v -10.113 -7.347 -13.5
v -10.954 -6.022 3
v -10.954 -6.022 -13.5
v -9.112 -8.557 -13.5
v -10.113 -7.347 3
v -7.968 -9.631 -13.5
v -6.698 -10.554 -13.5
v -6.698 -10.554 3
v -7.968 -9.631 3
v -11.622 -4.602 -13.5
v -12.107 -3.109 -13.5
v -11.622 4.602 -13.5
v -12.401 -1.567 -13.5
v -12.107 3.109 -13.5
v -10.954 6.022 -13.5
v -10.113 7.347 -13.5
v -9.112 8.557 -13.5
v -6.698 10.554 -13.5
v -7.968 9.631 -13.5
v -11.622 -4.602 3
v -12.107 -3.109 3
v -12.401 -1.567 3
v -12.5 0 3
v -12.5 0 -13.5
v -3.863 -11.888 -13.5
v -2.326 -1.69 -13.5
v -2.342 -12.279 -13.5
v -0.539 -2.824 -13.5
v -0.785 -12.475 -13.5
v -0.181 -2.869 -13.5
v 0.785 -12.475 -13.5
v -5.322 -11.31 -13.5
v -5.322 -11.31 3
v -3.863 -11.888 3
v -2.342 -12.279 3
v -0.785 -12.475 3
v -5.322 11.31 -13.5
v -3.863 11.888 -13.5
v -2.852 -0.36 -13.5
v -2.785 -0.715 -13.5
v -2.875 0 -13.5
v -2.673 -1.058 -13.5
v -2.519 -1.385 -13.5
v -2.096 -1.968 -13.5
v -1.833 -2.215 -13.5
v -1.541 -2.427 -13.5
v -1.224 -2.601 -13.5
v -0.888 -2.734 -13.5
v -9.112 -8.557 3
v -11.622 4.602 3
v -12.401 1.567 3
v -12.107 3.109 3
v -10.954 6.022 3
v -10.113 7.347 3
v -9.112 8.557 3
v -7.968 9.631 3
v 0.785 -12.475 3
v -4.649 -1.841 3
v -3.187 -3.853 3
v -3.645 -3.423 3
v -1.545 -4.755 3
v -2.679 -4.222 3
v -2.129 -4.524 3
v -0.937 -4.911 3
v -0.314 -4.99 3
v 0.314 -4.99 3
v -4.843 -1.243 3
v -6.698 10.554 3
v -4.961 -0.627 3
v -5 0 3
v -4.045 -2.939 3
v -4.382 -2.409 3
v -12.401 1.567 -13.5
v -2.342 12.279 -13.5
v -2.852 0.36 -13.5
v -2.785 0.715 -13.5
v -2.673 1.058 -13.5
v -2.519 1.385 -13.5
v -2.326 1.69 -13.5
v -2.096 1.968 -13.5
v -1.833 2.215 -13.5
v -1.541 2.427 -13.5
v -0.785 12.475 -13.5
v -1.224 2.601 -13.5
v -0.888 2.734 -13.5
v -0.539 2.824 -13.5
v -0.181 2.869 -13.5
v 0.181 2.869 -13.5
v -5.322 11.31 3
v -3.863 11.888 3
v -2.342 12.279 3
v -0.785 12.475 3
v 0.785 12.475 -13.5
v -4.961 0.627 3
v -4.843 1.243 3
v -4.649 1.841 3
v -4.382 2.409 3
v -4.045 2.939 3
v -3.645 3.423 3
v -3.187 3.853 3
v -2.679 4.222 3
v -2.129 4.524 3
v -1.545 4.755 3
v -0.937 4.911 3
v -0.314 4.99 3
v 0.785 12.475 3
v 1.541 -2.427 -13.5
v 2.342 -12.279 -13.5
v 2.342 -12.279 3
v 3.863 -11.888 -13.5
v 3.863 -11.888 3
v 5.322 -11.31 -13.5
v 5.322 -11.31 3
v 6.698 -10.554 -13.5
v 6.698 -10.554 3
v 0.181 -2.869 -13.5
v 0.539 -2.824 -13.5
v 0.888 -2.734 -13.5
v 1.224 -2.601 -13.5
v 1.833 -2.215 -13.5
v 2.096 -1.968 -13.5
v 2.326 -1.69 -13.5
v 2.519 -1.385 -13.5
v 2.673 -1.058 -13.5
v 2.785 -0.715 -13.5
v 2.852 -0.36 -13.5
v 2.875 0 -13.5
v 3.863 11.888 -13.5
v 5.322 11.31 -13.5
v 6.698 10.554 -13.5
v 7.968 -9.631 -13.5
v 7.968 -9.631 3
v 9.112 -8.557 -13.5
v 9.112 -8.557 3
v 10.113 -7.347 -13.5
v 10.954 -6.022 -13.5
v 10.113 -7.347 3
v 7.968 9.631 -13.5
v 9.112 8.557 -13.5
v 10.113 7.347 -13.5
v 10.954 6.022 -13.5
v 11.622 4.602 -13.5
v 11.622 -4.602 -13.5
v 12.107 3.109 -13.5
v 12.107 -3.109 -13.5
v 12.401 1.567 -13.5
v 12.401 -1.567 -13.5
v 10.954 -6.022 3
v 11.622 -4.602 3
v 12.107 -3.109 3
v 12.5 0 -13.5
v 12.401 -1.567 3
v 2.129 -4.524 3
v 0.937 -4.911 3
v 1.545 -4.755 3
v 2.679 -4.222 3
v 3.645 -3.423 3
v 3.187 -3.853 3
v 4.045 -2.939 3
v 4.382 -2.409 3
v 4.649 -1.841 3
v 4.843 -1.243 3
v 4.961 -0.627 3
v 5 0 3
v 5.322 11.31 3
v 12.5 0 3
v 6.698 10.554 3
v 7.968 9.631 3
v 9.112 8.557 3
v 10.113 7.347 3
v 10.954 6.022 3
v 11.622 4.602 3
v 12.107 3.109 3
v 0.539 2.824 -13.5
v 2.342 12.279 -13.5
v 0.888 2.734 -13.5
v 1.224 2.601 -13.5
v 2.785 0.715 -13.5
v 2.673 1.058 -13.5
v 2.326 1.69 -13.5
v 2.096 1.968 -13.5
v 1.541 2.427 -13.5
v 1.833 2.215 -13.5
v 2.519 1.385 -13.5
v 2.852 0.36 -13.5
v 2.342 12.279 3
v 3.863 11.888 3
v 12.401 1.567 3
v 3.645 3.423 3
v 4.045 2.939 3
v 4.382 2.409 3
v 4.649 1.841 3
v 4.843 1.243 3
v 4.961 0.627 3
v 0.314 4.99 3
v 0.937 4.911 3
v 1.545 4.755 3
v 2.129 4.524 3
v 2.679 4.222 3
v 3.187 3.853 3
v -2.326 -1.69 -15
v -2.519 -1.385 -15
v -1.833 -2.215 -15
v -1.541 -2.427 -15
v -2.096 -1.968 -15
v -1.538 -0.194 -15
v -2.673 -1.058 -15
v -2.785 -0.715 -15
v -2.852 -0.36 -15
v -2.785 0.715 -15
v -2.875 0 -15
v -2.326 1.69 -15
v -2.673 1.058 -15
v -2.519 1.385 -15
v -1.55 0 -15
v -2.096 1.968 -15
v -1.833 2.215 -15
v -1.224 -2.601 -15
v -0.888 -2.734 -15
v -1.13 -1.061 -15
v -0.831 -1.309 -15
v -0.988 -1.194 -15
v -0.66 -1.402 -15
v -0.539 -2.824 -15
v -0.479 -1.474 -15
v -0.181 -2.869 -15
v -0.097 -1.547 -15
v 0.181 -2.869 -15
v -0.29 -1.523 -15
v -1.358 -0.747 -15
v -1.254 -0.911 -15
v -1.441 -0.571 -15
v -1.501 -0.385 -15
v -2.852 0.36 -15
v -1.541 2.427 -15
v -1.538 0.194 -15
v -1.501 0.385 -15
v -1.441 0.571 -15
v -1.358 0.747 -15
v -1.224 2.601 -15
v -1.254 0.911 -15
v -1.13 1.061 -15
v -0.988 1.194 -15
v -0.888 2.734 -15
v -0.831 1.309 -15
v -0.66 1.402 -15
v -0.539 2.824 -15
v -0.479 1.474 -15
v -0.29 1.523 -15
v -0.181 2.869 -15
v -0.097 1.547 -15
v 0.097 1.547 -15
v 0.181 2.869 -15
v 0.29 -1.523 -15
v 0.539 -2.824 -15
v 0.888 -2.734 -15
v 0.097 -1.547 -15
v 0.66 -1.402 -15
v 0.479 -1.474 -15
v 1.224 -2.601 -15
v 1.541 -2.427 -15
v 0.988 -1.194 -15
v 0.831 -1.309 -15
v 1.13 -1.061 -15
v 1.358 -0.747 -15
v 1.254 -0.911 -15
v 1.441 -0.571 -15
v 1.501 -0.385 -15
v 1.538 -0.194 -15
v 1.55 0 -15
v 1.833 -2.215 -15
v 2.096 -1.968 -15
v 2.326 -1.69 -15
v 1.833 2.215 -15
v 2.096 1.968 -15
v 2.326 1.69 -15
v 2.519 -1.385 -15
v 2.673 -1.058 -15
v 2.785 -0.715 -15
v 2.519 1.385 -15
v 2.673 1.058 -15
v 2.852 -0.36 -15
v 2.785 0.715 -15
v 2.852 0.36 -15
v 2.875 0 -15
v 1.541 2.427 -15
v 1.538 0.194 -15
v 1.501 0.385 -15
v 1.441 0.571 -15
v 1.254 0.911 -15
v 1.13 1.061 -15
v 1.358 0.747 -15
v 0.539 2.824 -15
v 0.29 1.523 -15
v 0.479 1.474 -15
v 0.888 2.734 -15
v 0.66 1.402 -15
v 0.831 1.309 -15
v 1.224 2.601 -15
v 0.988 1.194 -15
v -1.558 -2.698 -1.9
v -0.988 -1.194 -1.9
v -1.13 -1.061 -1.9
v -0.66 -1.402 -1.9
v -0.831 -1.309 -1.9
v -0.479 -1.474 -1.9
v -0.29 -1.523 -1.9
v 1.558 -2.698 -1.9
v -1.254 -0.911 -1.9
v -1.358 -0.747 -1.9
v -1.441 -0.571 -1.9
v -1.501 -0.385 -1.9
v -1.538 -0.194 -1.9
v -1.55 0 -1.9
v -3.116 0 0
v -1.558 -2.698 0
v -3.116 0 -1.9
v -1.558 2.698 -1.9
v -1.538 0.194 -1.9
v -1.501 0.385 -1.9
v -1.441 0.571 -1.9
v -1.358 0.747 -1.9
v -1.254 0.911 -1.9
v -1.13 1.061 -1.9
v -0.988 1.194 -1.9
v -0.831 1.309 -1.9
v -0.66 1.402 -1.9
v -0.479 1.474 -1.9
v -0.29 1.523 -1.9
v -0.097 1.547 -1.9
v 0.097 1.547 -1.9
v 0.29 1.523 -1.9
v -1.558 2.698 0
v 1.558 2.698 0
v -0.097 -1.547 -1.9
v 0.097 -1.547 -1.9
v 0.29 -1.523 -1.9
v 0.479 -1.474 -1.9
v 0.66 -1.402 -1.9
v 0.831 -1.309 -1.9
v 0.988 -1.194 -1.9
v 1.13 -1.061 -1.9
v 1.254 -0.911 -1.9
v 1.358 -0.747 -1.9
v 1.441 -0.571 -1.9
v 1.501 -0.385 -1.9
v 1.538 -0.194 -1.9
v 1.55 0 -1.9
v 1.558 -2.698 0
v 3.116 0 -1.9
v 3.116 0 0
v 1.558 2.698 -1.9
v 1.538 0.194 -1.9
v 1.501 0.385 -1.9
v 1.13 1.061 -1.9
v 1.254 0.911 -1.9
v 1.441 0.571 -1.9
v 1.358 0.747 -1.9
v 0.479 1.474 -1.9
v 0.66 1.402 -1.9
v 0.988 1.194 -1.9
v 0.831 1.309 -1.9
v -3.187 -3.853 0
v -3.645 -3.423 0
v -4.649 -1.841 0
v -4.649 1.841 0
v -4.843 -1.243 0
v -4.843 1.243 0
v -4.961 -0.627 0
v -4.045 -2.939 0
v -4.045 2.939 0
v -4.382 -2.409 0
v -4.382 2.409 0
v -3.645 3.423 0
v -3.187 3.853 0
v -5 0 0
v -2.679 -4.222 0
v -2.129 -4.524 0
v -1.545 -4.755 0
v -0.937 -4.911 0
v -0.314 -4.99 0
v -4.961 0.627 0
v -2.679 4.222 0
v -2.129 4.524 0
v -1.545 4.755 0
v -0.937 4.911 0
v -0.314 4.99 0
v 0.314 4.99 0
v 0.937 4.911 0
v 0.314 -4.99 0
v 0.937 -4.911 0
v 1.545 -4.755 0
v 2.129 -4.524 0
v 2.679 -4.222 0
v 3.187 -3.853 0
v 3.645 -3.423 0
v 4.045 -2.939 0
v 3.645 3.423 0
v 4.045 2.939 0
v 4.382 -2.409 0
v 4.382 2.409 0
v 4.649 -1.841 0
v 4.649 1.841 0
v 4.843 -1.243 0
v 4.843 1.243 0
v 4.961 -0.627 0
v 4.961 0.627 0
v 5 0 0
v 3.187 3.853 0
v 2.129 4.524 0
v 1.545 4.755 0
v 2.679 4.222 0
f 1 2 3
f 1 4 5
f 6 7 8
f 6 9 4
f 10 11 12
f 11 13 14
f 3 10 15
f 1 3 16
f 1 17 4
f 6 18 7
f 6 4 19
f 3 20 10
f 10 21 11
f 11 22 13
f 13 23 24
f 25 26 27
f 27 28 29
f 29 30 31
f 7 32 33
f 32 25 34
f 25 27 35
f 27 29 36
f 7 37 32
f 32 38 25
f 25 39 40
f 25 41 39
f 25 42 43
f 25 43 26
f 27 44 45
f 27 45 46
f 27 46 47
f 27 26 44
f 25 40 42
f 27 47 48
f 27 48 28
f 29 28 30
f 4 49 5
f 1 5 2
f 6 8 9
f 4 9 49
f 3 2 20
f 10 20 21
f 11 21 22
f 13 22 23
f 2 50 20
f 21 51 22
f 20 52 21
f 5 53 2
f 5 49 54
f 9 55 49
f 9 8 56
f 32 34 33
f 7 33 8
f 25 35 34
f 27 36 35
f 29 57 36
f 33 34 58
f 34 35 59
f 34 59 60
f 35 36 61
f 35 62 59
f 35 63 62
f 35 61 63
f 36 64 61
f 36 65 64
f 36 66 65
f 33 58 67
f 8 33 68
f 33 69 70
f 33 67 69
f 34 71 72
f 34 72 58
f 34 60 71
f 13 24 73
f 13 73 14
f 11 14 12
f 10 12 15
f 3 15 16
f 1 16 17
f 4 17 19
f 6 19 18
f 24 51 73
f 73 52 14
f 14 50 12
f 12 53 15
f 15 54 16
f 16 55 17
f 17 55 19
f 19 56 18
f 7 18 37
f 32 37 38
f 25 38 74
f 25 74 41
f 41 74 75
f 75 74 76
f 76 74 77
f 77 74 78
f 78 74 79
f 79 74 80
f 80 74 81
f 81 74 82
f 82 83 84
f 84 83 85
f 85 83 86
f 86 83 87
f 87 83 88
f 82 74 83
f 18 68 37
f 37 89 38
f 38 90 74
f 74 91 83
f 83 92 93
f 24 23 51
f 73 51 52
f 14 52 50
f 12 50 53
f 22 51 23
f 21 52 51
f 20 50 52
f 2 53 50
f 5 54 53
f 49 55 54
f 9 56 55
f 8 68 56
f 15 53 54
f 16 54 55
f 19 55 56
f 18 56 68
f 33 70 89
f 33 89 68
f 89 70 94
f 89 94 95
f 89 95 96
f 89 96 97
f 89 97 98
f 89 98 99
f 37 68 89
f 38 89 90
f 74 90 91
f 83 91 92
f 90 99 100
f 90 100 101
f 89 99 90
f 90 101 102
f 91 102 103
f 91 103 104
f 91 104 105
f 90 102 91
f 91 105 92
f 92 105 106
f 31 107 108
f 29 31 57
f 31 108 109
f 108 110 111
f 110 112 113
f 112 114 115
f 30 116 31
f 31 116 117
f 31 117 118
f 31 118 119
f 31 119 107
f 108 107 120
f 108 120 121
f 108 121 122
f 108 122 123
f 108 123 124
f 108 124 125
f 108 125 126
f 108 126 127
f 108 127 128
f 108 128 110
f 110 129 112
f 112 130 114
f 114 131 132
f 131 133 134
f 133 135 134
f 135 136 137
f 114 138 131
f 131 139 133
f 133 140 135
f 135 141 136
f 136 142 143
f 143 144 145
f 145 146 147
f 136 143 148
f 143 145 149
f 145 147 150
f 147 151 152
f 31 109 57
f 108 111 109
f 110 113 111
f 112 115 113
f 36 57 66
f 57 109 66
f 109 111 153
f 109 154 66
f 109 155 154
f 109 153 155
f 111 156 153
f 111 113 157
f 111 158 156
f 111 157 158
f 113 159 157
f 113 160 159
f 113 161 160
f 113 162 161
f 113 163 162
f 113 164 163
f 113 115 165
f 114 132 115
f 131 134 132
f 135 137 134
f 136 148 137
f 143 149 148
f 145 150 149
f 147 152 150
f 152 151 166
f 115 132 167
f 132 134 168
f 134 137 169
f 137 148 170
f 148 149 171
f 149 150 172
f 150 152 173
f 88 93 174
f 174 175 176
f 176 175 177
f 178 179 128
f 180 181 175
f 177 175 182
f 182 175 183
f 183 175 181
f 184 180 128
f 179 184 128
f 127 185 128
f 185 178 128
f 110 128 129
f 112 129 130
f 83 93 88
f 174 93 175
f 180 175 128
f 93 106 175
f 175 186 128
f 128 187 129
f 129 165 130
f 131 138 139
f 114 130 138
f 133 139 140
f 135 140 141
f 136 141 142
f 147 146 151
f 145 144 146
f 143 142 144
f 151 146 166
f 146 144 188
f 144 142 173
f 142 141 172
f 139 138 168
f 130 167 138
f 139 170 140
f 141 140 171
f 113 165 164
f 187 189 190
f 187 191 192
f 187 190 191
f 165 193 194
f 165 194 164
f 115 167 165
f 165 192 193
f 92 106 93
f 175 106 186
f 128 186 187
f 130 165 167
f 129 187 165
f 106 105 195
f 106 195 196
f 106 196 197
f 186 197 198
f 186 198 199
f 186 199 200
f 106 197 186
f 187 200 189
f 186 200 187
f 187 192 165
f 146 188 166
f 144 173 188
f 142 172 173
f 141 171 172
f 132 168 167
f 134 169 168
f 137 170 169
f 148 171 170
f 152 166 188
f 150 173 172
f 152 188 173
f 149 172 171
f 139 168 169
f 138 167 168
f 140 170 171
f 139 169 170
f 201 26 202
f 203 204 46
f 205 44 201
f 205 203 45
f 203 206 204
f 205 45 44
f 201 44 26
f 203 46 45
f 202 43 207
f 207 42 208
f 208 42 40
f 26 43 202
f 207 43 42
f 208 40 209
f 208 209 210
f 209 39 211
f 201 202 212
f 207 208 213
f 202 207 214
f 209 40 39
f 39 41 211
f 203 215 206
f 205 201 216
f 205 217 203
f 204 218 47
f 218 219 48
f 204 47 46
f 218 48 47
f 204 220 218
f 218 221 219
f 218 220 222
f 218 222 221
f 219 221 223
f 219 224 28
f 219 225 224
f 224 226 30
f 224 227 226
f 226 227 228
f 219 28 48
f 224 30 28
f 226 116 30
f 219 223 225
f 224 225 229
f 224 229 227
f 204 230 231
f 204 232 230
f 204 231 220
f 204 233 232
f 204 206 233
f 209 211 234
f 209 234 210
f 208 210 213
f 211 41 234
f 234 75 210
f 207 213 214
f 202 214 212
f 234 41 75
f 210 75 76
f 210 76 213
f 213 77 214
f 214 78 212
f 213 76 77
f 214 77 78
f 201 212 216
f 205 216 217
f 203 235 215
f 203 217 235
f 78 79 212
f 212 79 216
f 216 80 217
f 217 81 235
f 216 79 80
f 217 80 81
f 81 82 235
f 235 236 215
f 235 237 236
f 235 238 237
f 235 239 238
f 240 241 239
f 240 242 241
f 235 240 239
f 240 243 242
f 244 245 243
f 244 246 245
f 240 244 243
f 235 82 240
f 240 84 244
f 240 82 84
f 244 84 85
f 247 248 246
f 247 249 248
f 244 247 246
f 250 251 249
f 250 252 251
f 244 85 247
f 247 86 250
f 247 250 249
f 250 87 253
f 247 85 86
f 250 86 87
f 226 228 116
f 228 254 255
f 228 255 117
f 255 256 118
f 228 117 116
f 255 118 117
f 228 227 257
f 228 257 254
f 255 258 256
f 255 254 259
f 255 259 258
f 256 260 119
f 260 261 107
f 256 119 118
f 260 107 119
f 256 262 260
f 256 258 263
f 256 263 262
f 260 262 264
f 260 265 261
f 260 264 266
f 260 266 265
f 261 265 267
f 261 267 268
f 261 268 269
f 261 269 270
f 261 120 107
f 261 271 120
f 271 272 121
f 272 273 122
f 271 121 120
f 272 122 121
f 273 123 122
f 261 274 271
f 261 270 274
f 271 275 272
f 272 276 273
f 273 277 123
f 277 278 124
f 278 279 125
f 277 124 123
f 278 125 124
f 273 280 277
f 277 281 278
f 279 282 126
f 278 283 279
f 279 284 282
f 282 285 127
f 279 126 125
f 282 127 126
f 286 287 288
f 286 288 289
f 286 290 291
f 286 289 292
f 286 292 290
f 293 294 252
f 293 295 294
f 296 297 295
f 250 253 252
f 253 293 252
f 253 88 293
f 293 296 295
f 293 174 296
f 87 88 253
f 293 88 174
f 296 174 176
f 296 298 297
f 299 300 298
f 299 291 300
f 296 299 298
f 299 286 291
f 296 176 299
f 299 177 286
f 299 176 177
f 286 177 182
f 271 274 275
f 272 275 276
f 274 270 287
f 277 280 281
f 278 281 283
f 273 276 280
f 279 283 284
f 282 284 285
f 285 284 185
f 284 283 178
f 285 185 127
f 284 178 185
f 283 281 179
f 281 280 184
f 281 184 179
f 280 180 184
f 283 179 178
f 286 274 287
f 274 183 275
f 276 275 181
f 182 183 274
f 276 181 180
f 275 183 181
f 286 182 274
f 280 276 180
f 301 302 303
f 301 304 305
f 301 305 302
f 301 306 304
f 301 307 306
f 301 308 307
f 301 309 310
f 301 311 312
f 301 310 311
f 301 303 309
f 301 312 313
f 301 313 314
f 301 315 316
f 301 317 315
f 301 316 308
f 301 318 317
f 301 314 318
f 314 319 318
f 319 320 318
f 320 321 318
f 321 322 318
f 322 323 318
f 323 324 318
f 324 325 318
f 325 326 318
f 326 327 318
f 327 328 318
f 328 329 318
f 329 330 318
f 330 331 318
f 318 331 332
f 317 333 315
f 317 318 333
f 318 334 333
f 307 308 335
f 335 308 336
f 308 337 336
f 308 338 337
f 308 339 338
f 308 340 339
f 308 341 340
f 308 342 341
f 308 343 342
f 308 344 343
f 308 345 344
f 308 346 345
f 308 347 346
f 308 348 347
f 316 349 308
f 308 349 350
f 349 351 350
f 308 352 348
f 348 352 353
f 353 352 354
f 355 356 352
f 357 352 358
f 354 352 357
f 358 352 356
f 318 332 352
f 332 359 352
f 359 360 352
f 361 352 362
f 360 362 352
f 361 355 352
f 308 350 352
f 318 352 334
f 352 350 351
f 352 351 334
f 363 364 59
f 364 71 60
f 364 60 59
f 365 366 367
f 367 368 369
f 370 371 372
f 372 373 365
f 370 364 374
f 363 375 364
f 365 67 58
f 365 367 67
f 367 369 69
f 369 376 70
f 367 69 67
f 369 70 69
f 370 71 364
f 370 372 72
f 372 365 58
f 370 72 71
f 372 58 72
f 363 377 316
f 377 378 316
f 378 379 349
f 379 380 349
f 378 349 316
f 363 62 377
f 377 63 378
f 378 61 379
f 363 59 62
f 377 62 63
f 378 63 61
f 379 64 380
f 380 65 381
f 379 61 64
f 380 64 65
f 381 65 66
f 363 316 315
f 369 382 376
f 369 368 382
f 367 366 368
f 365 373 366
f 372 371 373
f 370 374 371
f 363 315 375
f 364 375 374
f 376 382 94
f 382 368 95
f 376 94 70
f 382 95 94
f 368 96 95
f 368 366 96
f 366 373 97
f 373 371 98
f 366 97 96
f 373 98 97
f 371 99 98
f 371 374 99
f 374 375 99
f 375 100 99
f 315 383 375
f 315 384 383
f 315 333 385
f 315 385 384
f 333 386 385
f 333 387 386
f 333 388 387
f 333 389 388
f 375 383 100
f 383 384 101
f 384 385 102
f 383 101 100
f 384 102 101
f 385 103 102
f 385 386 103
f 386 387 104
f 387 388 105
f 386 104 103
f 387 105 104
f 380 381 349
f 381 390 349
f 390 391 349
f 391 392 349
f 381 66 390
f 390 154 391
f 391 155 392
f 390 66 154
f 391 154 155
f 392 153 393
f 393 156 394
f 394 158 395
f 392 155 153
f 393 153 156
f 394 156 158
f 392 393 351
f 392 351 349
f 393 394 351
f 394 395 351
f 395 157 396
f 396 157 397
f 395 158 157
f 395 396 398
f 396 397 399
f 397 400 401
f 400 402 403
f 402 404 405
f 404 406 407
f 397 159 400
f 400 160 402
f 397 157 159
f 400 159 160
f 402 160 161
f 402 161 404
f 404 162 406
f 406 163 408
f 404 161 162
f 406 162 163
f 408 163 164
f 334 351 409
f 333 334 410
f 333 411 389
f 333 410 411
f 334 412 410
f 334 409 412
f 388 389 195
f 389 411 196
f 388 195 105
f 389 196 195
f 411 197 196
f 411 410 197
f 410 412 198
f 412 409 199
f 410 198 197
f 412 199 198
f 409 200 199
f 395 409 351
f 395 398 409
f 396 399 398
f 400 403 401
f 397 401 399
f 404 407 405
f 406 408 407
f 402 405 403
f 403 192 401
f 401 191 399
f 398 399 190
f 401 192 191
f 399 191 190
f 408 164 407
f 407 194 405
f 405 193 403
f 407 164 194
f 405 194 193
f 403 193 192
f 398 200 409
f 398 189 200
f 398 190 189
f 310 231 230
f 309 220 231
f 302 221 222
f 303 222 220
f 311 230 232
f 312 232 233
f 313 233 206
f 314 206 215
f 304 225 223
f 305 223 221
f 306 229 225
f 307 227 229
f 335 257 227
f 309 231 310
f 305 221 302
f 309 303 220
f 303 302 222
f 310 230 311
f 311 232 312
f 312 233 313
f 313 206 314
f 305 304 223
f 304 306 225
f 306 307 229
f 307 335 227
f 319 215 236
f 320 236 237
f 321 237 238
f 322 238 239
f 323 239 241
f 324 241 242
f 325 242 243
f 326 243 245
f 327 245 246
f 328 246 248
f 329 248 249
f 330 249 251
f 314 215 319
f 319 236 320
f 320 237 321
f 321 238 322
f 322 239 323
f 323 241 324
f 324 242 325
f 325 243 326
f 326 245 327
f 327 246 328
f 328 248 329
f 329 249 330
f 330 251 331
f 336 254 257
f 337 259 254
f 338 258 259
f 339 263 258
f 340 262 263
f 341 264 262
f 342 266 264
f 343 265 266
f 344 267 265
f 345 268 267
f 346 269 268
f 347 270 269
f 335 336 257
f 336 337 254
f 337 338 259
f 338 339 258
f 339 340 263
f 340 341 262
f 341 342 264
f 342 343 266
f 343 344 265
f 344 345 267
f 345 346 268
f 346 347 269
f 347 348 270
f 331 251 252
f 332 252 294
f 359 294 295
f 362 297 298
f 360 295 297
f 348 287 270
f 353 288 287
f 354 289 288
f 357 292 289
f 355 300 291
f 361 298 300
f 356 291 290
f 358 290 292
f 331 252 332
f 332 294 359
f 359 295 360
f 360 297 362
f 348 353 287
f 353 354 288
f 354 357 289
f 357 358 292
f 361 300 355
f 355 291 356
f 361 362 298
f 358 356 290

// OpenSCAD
$fn = 50;

difference() {
	union() {
		translate(v = [0, 0, -13.5]) {
			cylinder(h = 16.5, r = 12.5);
		}
		#translate(v = [0, 0, -15.0]) {
			cylinder(h = 15, r = 2.875);
		}
	}
	union() {
		translate(v = [0, 0, 0]) {
			rotate(a = [0, 0, 0]) {
				difference() {
					union() {
						translate(v = [0, 0, -1.9]) {
							linear_extrude(height = 1.9) {
								polygon(points = [[3.1158, 0.0], [1.5579000000000005, 2.698361953111554], [-1.5578999999999994, 2.6983619531115544], [-3.1158, 3.815754496783323e-16], [-1.5579000000000014, -2.6983619531115535], [1.557899999999998, -2.6983619531115552]]);
							}
						}
					}
					union();
				}
			}
		}
		#cylinder(h = 3, r = 5.0);
		#translate(v = [0, 0, -100.0]) {
			cylinder(h = 200, r = 1.55);
		}
	}
}
